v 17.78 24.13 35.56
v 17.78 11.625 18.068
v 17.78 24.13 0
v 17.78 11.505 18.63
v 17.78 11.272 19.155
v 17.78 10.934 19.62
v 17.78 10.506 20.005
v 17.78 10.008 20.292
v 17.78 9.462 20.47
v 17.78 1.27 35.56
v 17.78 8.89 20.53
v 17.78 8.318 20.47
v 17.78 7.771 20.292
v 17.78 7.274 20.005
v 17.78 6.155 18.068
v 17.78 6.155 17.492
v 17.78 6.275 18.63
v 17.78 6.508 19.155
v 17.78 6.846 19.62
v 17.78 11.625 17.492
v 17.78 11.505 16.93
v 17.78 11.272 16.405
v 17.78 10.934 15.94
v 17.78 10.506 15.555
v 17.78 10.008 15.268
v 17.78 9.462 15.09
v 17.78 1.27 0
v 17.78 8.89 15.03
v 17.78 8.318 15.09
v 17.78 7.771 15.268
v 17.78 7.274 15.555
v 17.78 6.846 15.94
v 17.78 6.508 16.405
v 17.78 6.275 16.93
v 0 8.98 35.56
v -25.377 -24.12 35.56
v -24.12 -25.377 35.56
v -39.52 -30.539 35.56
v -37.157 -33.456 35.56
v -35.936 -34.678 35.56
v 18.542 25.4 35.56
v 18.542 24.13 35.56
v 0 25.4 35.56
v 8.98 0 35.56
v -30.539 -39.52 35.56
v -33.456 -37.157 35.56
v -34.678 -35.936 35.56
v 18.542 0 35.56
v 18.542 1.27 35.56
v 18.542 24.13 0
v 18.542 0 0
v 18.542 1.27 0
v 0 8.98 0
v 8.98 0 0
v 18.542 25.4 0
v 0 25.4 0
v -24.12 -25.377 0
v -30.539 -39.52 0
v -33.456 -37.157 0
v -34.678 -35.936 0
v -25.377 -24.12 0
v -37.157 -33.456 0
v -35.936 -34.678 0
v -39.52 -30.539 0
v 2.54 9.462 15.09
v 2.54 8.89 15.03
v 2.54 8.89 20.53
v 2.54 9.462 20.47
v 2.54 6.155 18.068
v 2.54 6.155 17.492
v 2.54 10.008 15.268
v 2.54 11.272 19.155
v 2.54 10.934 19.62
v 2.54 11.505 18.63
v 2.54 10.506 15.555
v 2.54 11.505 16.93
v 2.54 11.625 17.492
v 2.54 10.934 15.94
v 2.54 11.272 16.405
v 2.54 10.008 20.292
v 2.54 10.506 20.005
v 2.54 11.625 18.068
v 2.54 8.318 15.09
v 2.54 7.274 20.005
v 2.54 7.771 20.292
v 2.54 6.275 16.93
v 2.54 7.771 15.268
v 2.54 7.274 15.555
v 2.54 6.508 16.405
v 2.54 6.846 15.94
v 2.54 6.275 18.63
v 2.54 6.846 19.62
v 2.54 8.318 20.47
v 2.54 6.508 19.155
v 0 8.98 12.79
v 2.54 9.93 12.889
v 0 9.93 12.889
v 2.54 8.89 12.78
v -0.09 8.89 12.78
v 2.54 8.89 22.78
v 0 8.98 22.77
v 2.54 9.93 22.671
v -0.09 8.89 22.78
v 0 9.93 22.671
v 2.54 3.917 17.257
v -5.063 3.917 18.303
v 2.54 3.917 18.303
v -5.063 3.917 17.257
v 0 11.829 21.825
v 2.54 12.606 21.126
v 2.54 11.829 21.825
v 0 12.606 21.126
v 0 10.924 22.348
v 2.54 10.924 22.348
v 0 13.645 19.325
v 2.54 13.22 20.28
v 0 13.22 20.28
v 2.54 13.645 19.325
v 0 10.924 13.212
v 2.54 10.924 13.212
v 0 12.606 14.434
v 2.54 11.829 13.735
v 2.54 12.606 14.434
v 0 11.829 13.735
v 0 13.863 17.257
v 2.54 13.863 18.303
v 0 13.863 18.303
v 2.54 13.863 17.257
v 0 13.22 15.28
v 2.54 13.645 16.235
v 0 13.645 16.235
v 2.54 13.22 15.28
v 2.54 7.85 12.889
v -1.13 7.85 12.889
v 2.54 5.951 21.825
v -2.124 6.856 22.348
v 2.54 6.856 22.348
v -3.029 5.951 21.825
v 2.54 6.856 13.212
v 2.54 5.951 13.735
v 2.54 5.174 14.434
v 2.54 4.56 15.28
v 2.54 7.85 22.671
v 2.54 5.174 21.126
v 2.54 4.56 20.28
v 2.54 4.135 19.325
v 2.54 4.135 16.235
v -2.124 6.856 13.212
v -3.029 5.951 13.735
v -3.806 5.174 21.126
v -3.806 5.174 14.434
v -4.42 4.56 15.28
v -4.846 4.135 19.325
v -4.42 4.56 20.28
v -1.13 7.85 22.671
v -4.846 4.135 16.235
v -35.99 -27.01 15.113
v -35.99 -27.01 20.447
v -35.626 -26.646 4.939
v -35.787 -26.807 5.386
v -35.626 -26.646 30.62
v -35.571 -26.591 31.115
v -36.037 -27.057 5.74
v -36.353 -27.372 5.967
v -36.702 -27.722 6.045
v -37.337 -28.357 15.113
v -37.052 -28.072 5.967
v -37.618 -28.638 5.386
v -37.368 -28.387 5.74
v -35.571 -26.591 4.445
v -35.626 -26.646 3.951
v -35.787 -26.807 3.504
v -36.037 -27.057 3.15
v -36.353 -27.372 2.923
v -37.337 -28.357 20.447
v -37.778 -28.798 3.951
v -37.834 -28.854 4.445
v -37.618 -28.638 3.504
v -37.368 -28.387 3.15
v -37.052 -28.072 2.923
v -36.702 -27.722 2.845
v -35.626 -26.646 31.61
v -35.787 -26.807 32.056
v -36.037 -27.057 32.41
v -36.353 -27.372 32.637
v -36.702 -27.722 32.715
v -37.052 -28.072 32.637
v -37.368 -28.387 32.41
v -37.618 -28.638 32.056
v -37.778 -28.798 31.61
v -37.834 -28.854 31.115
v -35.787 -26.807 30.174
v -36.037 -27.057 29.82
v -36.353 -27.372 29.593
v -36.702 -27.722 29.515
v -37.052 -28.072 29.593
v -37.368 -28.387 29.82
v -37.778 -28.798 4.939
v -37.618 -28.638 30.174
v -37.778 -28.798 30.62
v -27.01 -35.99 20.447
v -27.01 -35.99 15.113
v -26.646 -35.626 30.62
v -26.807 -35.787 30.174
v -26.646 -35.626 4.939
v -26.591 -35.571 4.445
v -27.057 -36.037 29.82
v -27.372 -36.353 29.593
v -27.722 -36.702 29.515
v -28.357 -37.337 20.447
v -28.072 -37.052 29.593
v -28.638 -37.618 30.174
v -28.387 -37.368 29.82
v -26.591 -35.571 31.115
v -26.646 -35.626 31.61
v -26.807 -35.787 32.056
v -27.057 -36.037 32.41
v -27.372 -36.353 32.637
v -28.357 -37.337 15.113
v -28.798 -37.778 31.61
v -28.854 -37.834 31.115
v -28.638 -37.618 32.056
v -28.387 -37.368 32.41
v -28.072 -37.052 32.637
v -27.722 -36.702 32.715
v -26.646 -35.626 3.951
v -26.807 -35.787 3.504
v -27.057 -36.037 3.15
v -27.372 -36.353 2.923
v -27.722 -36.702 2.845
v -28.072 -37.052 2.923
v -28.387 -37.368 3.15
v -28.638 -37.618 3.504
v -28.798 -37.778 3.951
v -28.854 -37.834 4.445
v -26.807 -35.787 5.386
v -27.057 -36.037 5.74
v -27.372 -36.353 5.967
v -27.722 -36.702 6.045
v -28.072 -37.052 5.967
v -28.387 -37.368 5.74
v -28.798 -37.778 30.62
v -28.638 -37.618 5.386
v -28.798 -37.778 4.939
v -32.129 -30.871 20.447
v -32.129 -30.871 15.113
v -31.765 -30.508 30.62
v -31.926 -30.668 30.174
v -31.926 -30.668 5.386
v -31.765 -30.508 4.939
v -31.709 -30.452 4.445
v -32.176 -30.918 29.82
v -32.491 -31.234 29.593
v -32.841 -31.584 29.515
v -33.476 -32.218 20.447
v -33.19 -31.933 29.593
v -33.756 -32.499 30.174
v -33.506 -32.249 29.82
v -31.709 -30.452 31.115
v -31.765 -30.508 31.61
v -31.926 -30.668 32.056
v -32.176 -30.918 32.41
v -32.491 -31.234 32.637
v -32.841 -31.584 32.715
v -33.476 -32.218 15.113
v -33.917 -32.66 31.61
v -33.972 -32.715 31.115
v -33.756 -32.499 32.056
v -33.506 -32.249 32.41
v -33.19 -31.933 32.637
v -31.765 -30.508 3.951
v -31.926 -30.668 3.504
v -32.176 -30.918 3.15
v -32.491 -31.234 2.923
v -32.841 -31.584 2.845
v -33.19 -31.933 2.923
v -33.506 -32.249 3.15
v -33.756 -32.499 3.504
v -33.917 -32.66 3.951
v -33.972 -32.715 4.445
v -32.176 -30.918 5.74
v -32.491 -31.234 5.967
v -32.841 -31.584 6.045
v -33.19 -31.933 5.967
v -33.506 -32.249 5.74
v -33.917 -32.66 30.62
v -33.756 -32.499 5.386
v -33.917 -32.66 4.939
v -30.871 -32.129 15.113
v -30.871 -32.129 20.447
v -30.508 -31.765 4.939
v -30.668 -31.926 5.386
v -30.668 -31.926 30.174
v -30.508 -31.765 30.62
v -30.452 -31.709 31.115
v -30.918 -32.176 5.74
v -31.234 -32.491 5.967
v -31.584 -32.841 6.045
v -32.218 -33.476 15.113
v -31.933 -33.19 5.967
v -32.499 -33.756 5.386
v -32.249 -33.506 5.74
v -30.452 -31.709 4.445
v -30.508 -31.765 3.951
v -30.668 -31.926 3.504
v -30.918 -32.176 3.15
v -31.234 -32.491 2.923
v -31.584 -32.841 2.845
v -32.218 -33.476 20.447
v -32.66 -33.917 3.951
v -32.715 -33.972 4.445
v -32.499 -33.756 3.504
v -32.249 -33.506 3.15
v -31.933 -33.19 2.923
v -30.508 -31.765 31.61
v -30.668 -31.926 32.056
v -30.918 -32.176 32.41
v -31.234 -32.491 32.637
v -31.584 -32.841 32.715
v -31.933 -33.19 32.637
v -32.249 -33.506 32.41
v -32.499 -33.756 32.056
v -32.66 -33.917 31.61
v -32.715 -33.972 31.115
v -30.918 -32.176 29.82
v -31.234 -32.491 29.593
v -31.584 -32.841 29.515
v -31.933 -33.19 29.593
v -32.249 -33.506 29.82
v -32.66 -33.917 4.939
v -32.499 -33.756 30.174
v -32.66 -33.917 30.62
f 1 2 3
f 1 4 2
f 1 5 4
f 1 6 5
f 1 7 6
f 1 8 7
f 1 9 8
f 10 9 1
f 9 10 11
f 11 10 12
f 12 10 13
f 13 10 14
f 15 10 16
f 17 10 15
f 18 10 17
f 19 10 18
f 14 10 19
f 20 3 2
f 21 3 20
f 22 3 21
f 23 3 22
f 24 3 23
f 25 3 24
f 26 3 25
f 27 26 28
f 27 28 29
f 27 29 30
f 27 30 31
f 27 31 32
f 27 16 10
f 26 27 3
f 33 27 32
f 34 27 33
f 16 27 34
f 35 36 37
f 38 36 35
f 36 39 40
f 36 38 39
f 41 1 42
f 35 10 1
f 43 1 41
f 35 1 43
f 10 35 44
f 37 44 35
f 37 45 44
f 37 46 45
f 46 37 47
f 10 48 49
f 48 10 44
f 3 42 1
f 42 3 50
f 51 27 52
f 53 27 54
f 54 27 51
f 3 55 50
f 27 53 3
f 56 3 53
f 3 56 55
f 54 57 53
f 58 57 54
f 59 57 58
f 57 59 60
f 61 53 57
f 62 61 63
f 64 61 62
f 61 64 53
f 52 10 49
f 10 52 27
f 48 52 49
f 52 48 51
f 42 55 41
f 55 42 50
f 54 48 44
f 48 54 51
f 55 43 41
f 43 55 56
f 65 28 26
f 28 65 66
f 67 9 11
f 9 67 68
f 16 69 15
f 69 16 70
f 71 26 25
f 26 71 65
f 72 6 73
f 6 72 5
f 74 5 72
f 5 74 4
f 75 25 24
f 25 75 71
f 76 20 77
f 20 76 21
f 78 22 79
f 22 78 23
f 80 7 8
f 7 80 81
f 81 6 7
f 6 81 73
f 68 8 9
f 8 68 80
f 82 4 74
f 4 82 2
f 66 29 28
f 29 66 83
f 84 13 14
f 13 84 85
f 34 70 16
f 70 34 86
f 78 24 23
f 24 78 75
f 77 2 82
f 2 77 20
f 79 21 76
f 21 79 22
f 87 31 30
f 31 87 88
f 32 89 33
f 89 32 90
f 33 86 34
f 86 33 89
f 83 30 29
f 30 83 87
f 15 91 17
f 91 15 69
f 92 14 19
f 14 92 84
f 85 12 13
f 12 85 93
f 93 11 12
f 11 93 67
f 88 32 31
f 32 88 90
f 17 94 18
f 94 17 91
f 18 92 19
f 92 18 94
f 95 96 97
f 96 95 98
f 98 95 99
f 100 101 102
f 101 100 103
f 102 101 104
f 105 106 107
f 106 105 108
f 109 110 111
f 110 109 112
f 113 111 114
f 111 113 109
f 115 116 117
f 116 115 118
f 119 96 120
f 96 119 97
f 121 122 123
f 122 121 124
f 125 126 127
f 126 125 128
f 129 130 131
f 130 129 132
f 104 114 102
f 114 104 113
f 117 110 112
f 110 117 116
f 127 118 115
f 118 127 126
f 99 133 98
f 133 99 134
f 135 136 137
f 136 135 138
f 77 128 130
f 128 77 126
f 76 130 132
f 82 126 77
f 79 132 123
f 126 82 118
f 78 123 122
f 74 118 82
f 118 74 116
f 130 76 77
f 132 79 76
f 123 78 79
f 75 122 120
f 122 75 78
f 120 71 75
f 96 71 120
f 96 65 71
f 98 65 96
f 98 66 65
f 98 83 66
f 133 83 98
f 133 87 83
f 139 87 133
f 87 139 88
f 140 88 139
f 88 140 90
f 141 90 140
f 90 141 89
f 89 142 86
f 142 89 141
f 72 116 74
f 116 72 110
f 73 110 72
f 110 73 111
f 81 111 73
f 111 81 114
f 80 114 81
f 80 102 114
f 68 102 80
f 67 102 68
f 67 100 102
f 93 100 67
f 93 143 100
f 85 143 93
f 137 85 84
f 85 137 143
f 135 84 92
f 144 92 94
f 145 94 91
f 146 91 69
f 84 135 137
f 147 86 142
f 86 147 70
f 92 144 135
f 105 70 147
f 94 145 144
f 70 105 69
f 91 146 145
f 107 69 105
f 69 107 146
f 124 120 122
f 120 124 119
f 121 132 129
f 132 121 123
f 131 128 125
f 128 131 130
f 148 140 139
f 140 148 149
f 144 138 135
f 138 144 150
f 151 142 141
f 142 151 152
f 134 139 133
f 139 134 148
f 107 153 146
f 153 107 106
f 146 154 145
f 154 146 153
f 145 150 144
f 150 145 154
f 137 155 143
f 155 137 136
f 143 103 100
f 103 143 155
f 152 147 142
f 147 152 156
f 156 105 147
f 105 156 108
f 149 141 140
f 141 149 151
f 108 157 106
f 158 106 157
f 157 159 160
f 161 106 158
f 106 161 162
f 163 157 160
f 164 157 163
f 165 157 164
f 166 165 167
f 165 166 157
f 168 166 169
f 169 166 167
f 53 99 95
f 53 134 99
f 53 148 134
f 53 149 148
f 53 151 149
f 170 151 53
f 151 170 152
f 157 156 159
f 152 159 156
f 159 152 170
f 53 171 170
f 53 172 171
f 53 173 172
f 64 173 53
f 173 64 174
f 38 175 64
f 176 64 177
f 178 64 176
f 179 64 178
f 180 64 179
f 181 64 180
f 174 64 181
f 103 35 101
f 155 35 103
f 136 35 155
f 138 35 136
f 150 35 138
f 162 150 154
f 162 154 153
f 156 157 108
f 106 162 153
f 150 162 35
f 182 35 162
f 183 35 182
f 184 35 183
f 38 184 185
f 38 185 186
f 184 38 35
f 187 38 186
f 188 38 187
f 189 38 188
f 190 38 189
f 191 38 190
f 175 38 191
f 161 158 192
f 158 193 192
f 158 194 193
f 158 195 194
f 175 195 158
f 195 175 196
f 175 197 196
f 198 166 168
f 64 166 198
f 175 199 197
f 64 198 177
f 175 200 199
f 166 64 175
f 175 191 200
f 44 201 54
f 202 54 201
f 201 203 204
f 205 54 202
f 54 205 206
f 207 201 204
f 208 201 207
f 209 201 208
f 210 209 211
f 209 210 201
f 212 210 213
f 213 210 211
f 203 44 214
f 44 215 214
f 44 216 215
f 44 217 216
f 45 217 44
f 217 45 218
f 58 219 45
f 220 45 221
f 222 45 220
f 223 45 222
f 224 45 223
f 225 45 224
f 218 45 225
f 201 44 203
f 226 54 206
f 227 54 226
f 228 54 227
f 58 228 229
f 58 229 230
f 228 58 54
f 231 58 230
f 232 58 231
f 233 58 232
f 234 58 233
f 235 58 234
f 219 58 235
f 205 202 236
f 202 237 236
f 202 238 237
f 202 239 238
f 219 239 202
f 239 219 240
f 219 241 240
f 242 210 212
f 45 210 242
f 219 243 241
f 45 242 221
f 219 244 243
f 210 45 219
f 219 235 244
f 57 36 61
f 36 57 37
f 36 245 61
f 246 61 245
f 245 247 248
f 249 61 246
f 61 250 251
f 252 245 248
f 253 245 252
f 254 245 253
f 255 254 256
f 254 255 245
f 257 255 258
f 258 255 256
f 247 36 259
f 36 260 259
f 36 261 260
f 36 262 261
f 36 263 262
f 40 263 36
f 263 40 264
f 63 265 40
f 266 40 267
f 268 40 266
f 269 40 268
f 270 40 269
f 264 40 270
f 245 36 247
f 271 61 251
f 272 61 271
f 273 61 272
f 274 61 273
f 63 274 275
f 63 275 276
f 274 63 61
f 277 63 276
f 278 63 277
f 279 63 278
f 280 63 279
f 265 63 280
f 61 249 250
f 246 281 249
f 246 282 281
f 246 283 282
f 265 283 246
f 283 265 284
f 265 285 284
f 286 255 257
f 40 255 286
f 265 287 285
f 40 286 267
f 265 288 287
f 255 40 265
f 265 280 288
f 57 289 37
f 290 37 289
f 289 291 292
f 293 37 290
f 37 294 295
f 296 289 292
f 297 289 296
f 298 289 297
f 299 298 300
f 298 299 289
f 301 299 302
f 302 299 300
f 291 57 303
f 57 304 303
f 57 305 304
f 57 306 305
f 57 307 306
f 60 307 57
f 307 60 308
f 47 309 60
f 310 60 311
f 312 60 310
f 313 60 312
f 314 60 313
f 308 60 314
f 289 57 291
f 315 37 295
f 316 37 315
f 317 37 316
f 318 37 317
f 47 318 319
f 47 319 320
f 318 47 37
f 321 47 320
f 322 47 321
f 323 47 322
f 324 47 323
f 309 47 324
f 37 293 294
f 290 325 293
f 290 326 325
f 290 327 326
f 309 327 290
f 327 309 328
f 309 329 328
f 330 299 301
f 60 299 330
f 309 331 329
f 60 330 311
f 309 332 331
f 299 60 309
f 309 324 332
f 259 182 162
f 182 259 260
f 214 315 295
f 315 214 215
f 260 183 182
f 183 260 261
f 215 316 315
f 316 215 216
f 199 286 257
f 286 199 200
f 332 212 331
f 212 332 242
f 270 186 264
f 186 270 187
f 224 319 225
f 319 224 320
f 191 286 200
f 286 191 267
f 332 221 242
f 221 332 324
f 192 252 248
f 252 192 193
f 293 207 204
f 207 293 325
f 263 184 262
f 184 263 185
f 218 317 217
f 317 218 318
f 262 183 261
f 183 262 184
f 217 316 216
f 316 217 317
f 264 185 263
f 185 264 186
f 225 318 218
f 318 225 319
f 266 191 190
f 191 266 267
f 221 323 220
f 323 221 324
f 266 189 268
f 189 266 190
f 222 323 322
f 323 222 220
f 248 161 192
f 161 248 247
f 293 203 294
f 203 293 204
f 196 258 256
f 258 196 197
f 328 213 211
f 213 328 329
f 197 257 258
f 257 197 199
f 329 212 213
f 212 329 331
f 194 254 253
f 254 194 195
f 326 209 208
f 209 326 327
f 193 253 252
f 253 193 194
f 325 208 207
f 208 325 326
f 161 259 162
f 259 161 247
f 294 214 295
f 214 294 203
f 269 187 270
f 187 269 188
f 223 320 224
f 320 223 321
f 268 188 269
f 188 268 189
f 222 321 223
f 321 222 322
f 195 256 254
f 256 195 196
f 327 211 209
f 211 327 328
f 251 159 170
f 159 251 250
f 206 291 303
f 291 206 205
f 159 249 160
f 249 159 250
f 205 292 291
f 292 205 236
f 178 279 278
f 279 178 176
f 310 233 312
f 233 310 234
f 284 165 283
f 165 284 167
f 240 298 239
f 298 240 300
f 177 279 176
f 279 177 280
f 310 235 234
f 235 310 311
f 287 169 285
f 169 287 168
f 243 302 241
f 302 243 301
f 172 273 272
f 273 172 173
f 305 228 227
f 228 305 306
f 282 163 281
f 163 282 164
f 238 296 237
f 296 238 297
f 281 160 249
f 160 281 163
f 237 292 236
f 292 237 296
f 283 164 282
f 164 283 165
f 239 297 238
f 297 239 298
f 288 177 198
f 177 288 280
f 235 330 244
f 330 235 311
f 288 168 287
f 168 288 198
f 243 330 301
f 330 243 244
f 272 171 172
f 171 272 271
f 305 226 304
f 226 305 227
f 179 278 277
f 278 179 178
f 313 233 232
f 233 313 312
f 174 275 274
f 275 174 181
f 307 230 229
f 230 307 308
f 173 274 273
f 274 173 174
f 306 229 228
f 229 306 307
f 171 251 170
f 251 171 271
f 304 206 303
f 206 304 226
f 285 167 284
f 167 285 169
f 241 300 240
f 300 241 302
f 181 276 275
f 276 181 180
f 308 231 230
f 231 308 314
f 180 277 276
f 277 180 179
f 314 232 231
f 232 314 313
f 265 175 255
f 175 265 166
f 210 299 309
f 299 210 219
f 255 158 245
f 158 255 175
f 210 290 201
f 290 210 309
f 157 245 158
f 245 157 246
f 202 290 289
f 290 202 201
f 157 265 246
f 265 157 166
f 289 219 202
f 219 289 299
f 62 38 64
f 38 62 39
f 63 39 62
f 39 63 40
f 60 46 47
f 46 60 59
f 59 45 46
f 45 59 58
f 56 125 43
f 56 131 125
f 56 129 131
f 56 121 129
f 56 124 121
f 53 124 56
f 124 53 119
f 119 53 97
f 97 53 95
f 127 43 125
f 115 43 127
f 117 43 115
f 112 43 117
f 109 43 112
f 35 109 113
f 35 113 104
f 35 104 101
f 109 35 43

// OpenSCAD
/* Electric Fence Wire Support for wood post
    Author:  Tom Clupper
    Date: 6/30/2020
    License: Attribution-ShareAlike 4.0 International (https://creativecommons.org/licenses/by-sa/4.0)
    
    NOTES:    
    - Use this design at your own risk.  There is no guarantee that it will work for you.
    - No supports needed
    -Use a plastic material that will withstand the temperatures and weather conditions outdoors
    - Is attached using a standard 1 inch long #10 wood screw
    -The wire is held in the slot using a standard 3/16 inch wide plastic wire tie (0.053 inch thick)
*/

// A couple of constants (need to end up in mm)
mm = 1.0;
cm = 10.0;
inches = 25.4;
inch = 25.4;
mils = 25.4/1000.0;

// Define some variables
ST = 1.4*inch;      // Support thickness
PBD = 100*mm;       // Print bed diameter
n = 8;              // Number of sides to support
SW = 80*mm;         // Support width
Angle = 45;          // Support angle (0 to 50 degrees)
WD = 0.070*inches;   // Wire diameter

// translate([0,0,ST/2]) { 

translate([0,0,ST/2]) {    
   difference(){
    union(){
      intersection(){
        rotate([0,0,Angle]){
          difference(){
            // Support stem  
            translate([-PBD/4,0,0]) cube([PBD/2+PBD/2, 0.5*inches,ST], center=true);
            // Slot for wire    
            translate([-PBD/2,0,0]) cube([30*mm, WD, ST], center=true);
            // Holes for wire (if needed to tie off the ends)
            translate([-PBD/2+2.5*WD,0,ST/2-2.5*WD]) rotate([90,0,0]) cylinder(h=1.5*inch, d=1.8*WD, center=true, $fn=20); 
            translate([-PBD/2+2.5*WD,0,-(ST/2-2.5*WD)]) rotate([90,0,0]) cylinder(h=1.5*inch, d=1.8*WD, center=true, $fn=20);
            // Slot for the plastic strap (to hold sire in slot)
            translate([-PBD/2+4.5,0,0]) cube([0.075*inch,1.5*inch,0.21*inch], center=true);    
          } 
        }
        // Clip off the bed diameter
        cylinder(h=ST,d=PBD,center=true, $fn=60);             
      }
      // The base
      translate([0,0,-ST/2]) cube([1*inch,1*inch,ST]);     
    }
    union(){      
      #translate([0.7*inch,0.05*inch,-ST/2]) cube([1*inch,1*inch-0.1*inch,ST]);
      translate([0.73*inch,0,-ST/2]) cube([1*inch,1*inch,ST]);
        
    // #10 screw relief
      translate([0,0.35*inches,0]) rotate([0,90,0]) cylinder(h=PBD,d=5.5*mm, center=true, $fn=30);
      translate([-0.1*inches,0.35*inches,0]) rotate([0,90,0]) cylinder(h=0.4*inches,d=10*mm, center=true, $fn=30);     
    }
  }
}
